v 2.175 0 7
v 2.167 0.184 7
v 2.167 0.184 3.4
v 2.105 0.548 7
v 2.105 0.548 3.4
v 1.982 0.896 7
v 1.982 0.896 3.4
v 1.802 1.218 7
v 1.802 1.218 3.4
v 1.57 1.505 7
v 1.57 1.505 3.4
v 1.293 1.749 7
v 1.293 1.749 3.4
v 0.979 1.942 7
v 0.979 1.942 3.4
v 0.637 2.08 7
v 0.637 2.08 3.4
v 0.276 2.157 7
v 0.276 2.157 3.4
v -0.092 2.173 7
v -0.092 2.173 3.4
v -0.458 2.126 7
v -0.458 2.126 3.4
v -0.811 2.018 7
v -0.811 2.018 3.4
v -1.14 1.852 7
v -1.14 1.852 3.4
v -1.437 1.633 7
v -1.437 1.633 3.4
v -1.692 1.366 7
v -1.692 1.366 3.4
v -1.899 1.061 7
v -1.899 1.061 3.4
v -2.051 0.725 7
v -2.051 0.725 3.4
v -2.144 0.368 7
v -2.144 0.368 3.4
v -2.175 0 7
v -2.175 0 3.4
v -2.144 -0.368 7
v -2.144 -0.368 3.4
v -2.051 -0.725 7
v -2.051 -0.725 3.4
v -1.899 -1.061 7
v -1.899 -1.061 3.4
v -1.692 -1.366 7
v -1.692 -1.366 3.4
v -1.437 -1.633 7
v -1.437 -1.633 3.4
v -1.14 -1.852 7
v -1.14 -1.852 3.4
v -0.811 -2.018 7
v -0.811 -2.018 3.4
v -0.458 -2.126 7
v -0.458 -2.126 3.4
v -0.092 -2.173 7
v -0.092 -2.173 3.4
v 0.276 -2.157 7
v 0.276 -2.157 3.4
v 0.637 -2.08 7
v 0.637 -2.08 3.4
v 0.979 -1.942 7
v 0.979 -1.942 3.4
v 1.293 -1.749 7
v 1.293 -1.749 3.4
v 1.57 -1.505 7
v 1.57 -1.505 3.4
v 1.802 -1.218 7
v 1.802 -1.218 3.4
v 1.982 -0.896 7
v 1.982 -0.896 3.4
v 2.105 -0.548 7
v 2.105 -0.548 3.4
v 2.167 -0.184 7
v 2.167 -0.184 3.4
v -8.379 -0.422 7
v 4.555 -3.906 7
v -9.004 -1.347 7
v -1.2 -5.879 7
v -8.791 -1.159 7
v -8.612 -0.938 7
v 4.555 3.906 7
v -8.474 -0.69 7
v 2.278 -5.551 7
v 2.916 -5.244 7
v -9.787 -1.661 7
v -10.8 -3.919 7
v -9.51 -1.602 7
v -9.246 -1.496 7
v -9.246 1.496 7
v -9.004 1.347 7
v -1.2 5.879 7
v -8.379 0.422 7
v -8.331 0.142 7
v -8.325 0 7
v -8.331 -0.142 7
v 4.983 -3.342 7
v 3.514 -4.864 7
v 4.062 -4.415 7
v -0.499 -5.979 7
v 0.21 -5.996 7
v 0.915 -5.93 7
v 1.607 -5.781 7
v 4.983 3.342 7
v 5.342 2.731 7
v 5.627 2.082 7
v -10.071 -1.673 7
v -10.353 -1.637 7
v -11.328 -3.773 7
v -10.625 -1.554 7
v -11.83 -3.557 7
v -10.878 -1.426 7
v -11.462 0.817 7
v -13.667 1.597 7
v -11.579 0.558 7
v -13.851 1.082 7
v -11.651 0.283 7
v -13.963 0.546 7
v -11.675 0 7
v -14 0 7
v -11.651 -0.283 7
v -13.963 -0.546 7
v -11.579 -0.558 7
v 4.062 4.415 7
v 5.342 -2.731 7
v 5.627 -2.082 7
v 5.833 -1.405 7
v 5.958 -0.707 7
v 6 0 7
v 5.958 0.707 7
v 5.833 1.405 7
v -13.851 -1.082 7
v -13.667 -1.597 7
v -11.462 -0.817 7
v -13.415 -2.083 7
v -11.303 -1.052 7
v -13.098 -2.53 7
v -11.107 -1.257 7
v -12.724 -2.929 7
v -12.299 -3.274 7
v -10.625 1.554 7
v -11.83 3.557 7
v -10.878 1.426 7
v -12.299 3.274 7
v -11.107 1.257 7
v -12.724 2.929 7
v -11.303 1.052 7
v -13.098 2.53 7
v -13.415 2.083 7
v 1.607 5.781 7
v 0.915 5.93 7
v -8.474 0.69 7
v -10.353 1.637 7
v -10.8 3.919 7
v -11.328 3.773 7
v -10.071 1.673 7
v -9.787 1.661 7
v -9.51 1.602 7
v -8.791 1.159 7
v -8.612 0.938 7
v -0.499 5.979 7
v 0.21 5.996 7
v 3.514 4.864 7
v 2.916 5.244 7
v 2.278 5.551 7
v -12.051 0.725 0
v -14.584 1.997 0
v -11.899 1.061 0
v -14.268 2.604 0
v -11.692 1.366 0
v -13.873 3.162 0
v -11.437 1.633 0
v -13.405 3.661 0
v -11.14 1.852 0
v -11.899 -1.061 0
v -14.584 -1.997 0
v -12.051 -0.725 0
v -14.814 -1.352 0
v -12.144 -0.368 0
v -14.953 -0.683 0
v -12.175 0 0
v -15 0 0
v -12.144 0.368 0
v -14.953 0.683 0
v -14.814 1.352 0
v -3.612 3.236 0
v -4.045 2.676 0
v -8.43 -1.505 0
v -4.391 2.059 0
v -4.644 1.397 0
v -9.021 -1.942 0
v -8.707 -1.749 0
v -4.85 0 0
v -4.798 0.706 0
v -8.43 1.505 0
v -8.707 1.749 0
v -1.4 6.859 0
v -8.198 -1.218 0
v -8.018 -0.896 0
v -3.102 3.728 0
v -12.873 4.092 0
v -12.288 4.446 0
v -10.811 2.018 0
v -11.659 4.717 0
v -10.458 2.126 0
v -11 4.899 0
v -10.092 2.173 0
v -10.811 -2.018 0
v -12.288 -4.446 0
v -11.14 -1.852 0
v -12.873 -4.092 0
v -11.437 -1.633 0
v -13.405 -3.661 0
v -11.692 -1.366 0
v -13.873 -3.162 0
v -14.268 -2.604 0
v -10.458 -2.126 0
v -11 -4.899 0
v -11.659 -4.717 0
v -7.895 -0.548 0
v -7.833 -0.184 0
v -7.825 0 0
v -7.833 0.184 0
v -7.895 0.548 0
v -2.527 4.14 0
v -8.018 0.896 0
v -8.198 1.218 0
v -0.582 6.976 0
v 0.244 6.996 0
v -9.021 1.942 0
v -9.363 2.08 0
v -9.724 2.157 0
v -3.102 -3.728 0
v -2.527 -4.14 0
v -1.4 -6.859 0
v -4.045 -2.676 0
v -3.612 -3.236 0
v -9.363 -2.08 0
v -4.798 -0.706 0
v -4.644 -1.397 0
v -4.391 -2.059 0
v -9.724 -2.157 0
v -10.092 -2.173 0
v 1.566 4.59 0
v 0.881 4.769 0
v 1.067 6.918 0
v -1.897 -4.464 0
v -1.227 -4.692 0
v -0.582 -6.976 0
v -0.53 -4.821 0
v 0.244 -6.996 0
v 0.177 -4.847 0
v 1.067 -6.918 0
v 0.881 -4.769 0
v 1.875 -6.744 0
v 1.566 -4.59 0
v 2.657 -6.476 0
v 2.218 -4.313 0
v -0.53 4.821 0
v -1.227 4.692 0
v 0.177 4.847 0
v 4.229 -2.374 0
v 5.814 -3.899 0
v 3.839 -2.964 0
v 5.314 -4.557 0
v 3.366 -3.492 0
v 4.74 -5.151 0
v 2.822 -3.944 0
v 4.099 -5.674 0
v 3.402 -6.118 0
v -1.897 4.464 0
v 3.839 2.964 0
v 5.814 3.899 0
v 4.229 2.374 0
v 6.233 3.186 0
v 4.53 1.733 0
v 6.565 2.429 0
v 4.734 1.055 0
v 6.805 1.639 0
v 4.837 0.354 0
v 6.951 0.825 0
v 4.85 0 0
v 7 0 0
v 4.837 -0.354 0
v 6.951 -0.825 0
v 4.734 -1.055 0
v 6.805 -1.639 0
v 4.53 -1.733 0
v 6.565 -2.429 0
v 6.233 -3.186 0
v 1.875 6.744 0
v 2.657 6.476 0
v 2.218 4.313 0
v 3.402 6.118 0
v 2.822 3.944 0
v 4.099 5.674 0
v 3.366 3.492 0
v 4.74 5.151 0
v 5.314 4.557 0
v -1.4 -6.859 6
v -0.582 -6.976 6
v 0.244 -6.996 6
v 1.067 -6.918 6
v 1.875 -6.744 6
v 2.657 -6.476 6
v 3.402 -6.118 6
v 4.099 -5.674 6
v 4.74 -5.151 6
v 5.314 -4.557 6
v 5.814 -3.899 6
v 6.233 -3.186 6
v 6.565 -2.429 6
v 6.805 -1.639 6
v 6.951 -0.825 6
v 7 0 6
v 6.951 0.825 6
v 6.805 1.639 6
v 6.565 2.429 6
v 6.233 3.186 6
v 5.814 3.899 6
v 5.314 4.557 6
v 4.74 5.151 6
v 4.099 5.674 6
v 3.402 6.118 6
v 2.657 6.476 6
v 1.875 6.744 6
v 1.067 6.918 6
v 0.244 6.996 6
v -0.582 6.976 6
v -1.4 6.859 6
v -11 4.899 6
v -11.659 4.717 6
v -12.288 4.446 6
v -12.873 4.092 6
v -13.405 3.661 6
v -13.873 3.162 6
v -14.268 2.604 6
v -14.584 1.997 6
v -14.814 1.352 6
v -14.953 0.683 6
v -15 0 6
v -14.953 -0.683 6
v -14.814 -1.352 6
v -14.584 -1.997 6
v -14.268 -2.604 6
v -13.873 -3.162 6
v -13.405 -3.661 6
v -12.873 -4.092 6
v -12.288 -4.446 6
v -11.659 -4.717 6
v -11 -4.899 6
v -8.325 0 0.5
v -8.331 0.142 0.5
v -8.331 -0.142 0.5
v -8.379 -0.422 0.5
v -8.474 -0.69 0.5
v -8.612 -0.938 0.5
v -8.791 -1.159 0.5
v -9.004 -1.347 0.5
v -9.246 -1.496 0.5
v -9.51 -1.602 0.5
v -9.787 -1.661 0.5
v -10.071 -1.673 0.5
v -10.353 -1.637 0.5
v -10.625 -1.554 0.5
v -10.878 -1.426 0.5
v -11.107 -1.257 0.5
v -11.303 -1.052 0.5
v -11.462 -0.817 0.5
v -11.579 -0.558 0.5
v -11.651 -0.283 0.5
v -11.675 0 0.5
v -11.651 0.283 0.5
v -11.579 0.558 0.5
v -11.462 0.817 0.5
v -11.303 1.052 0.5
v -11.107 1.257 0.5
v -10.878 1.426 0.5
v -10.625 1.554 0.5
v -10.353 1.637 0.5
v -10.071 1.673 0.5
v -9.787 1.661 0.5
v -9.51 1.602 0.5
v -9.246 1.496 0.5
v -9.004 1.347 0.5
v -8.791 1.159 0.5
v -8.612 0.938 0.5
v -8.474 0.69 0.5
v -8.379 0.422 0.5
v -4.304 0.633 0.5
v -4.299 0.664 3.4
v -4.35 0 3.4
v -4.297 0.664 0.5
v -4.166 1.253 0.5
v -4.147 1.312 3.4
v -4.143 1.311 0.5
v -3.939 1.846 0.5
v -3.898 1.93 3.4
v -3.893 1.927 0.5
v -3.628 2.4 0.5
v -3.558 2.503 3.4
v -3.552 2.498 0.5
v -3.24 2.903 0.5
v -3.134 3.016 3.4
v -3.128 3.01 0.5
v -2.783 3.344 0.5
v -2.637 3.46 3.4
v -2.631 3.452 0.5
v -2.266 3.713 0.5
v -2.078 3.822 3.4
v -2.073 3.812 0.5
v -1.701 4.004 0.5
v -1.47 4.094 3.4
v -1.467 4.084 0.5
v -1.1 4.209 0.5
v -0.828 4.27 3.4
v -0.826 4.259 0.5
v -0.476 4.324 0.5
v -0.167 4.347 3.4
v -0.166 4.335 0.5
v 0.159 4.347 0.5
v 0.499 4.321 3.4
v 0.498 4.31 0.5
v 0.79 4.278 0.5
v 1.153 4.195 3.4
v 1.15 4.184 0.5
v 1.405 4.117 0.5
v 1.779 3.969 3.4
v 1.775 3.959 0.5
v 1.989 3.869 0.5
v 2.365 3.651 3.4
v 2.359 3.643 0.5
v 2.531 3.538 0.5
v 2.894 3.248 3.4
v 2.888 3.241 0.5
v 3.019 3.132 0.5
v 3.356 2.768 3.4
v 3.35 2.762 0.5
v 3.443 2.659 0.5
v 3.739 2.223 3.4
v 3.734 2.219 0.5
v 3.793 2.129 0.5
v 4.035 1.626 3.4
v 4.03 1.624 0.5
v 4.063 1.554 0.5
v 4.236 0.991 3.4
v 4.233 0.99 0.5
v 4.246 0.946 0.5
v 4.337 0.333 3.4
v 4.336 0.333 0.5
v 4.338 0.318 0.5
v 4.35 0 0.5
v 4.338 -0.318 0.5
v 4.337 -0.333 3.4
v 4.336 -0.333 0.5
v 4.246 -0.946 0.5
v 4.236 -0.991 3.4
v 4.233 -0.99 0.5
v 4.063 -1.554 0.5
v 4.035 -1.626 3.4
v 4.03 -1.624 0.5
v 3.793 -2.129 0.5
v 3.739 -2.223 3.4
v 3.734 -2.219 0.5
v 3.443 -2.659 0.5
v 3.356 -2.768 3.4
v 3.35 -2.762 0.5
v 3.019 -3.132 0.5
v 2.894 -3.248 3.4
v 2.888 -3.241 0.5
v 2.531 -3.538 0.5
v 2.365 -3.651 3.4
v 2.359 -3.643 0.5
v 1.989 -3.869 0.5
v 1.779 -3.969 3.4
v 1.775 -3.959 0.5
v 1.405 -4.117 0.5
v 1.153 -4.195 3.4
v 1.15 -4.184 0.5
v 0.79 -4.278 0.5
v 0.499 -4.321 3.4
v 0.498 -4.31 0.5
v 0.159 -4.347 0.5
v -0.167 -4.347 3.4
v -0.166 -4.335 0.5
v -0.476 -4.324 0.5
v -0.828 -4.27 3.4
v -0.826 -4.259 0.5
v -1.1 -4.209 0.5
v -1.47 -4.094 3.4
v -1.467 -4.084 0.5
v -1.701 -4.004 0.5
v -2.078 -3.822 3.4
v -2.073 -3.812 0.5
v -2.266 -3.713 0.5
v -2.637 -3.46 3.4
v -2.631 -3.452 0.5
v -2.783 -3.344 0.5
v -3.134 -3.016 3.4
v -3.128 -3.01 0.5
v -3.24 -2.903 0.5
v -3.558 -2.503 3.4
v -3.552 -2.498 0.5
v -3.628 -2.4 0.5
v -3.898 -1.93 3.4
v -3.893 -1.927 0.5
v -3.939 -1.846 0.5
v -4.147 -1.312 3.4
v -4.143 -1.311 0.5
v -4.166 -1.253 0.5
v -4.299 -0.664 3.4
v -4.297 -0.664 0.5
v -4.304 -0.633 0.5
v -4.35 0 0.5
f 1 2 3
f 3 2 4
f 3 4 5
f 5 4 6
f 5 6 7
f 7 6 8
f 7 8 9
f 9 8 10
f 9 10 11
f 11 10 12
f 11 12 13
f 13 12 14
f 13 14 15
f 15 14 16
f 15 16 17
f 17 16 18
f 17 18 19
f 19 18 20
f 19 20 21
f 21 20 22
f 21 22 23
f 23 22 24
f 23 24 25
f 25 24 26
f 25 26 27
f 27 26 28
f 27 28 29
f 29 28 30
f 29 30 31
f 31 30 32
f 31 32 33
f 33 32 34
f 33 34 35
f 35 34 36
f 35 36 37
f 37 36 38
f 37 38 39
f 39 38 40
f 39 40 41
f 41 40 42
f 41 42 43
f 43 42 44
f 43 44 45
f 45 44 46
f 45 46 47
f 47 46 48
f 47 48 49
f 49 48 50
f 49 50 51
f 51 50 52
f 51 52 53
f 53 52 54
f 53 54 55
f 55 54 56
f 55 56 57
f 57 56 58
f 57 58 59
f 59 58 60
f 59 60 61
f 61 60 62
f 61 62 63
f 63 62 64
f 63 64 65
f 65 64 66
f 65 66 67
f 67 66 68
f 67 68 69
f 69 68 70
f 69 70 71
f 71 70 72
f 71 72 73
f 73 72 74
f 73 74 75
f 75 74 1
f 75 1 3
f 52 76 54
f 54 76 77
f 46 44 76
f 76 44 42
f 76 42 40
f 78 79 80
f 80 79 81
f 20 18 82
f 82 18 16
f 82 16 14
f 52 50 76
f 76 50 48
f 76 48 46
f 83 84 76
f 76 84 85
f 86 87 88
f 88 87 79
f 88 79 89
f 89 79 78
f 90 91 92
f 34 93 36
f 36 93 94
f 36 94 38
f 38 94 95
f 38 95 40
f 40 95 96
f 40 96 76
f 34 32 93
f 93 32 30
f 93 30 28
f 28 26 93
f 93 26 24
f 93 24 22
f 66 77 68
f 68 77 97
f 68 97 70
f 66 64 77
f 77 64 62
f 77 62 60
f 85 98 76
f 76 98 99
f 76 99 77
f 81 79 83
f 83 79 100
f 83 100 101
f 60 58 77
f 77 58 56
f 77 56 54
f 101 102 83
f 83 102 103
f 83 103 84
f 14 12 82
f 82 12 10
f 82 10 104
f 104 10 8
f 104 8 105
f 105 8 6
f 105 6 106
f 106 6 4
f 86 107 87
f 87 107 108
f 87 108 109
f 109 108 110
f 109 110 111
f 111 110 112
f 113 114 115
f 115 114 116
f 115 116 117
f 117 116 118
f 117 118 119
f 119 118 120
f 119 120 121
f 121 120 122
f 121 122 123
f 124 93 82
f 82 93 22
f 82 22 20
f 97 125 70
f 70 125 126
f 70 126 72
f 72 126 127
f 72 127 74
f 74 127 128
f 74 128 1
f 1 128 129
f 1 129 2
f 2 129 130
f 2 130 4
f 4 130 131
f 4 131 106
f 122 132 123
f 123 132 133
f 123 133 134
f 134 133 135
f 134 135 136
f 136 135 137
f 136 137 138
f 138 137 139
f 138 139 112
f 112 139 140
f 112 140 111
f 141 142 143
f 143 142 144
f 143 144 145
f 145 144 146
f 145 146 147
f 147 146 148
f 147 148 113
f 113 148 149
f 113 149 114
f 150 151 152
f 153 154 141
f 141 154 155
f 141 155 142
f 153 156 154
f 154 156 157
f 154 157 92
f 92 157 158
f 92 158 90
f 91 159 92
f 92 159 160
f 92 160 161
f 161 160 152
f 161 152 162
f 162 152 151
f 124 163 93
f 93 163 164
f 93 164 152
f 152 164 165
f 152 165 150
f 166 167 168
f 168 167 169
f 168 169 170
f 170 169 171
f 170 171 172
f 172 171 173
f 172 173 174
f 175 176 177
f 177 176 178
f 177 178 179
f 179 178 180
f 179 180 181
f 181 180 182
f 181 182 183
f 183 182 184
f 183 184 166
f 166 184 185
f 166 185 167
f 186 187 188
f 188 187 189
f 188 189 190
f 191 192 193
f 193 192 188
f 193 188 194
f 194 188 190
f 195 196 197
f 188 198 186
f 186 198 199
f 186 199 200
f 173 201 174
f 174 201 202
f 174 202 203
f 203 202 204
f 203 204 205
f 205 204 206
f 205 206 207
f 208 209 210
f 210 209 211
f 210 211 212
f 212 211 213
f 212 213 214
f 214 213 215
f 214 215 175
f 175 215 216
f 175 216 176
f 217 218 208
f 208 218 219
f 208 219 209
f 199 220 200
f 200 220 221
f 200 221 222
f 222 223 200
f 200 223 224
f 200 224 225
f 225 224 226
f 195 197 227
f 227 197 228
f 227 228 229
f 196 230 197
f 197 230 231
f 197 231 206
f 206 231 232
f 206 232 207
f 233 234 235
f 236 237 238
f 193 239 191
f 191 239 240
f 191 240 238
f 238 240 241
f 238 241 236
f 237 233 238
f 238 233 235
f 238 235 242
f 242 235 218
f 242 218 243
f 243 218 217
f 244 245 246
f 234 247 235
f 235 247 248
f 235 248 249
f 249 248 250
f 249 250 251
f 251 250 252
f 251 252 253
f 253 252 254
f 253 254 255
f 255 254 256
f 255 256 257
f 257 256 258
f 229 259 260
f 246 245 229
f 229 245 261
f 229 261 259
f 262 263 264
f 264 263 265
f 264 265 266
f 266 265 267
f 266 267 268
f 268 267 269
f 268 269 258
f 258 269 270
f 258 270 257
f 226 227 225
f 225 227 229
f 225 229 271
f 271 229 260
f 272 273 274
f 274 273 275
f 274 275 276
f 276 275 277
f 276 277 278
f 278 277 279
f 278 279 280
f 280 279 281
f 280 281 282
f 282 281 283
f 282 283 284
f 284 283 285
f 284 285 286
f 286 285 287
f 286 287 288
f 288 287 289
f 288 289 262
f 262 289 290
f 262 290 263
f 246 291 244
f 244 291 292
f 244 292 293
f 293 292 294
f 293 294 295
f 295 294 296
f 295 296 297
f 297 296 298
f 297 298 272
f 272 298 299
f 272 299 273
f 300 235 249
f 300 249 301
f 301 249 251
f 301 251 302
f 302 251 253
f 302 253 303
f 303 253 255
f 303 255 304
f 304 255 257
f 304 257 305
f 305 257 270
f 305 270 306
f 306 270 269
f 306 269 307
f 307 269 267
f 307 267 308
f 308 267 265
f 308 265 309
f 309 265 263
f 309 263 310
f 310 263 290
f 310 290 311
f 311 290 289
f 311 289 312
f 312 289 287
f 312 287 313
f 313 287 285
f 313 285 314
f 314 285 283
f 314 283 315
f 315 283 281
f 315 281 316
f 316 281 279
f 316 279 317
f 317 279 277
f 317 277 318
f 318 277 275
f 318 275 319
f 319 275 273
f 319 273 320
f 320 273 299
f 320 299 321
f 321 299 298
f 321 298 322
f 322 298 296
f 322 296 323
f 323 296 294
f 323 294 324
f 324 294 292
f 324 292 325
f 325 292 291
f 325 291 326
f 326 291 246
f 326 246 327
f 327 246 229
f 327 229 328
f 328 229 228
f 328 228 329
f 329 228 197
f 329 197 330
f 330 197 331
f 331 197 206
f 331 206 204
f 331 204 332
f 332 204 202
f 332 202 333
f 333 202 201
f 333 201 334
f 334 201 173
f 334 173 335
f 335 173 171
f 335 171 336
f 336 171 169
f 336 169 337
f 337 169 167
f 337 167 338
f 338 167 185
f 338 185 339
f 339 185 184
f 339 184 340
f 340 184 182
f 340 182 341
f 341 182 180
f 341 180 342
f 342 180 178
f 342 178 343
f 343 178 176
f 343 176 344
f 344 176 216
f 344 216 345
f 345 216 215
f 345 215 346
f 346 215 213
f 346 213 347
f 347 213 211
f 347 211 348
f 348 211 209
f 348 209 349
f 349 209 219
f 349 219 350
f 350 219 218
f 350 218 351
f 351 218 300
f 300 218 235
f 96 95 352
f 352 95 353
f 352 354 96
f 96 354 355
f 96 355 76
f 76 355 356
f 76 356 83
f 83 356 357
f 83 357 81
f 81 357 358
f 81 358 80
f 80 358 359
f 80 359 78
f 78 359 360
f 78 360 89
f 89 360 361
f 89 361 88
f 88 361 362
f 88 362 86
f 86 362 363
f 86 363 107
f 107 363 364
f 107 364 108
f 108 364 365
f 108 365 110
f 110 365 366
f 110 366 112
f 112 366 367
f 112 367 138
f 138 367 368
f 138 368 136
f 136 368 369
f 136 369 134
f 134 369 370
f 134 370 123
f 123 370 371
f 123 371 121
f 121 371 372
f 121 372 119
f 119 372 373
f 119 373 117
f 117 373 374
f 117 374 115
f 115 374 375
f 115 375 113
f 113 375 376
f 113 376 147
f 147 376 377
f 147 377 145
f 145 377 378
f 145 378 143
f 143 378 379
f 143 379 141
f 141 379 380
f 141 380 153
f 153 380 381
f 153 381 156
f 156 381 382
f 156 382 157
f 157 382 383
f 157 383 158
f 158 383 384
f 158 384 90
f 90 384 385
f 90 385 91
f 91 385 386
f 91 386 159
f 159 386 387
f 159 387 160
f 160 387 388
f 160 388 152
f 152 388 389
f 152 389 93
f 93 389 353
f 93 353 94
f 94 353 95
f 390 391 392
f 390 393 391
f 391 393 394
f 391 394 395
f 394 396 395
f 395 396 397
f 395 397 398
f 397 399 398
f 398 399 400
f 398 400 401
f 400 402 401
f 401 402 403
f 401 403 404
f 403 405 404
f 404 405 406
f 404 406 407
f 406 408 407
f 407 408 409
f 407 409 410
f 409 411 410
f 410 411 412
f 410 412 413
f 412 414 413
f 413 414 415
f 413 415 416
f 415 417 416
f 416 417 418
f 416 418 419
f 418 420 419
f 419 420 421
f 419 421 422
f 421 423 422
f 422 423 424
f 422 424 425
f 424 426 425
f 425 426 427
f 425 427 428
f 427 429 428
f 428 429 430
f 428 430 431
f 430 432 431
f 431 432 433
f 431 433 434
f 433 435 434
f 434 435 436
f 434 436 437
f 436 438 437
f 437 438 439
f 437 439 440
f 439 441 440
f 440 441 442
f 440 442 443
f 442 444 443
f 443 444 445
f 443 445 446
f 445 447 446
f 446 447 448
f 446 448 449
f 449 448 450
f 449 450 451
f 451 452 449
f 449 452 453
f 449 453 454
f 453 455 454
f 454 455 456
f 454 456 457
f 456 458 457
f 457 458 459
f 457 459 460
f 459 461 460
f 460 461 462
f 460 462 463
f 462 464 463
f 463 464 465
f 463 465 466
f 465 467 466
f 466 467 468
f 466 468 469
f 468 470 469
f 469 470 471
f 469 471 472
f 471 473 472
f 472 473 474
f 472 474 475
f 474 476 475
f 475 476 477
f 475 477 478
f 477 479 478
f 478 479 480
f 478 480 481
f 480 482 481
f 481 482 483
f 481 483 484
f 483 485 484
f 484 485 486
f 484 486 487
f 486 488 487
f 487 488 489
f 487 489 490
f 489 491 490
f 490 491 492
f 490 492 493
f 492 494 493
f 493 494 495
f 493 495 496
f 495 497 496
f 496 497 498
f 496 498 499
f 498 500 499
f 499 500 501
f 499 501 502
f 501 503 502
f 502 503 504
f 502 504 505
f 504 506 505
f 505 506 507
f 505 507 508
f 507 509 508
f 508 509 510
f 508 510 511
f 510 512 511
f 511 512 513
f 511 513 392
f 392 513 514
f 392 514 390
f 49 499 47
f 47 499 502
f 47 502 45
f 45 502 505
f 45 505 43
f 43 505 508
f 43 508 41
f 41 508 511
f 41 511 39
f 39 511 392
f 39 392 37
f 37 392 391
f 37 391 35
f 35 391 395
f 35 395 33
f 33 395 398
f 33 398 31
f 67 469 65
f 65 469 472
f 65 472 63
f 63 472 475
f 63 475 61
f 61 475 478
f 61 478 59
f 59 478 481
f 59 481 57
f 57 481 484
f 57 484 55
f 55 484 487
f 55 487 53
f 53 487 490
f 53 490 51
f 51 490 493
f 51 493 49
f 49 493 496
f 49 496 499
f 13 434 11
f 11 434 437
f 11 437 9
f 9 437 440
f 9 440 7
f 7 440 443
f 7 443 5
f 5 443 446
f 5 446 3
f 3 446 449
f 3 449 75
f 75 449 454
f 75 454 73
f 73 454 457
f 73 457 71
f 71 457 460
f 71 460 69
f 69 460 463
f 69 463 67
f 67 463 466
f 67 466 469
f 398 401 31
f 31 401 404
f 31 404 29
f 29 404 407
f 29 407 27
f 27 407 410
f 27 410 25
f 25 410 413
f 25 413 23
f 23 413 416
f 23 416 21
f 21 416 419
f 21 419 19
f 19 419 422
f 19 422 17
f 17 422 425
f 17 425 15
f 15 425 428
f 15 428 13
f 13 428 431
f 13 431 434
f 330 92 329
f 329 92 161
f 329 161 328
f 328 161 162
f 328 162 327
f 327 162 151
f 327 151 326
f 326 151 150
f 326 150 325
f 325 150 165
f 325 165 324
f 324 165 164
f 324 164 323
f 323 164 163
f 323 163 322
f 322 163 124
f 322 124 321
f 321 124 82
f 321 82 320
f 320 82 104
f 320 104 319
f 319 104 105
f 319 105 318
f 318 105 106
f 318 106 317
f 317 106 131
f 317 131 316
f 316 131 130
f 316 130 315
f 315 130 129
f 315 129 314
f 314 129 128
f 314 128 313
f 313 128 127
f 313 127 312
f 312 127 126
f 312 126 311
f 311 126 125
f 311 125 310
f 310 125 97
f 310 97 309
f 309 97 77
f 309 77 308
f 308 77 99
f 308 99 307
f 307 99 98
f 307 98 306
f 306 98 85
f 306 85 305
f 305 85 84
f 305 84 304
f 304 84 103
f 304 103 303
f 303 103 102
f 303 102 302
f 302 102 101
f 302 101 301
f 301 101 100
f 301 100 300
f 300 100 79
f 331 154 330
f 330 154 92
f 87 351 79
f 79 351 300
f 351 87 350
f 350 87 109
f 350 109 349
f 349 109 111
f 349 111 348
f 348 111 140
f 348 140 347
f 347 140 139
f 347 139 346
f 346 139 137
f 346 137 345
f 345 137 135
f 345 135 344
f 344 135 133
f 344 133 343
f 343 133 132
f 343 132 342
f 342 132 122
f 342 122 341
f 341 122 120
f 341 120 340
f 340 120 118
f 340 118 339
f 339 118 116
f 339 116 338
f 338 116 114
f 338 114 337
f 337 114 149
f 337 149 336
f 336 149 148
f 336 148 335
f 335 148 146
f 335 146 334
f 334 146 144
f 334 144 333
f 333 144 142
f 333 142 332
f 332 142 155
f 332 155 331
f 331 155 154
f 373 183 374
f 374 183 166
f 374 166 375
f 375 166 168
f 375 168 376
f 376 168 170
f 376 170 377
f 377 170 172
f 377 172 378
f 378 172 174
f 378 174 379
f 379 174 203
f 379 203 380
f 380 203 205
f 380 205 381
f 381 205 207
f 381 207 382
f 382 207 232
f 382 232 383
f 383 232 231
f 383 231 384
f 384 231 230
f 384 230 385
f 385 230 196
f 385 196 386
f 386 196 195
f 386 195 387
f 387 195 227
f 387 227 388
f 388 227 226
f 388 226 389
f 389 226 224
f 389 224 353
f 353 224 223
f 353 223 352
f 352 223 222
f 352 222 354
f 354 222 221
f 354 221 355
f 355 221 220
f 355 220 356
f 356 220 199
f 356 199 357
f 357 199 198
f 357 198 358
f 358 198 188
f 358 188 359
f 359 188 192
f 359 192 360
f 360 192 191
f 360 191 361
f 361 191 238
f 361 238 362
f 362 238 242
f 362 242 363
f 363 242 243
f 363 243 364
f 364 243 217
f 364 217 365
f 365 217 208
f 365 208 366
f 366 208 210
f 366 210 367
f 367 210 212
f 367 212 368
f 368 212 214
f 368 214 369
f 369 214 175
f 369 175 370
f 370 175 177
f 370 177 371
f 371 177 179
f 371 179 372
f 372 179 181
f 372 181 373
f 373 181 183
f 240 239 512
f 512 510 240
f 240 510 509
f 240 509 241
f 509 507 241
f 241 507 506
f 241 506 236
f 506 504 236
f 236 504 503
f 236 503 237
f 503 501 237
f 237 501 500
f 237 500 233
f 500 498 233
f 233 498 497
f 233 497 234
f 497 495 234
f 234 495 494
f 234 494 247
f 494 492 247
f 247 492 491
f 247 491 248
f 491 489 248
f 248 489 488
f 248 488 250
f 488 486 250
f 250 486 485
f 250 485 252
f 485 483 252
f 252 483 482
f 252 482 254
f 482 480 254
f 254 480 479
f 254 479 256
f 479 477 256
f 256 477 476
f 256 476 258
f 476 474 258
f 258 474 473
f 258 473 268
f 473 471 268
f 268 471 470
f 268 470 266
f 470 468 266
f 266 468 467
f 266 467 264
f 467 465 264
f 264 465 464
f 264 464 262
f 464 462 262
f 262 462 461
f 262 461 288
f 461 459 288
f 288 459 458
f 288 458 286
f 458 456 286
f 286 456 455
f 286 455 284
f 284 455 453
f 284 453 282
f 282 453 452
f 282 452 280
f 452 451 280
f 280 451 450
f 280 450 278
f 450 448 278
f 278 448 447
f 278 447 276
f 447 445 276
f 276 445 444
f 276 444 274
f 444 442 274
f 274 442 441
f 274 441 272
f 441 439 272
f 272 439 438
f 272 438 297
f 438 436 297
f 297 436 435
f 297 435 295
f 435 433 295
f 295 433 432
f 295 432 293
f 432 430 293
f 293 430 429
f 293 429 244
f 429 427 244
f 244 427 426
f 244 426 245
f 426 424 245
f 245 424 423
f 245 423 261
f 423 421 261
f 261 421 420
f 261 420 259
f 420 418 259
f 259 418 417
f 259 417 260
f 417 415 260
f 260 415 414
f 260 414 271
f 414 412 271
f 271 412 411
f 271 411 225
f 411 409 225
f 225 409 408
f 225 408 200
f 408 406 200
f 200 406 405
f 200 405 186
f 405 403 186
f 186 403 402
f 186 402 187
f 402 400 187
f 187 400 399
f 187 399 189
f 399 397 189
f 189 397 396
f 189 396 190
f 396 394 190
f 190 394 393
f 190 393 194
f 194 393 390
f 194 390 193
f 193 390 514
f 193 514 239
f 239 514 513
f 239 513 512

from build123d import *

# Parameters (mm, degrees)
SKETCH1_R           = 2.175
SKETCH1_R_2         = 1.675
BOSS_EXTRUDE1_DEPTH = 7
SKETCH2_R           = 4.35
CUT_EXTRUDE1_DEPTH  = 3.4
CHAMFER1_SIZE       = 1
CHAMFER2_SIZE       = 0.5


with BuildPart() as part:
    # Sketch1 → Boss-Extrude1 (new body)
    with BuildSketch(Plane.XY):
        with BuildLine():
            Line((-1.4, 6.85857128), (-11, 4.898979486))
            ThreePointArc((-11, 4.898979486), (-15, 0), (-11, -4.898979486))
            Line((-11, -4.898979486), (-1.4, -6.85857128))
            ThreePointArc((-1.4, -6.85857128), (7, 0), (-1.4, 6.85857128))
        make_face()
        Circle(SKETCH1_R, mode=Mode.SUBTRACT)
        with Locations((-10, 0)):
            Circle(SKETCH1_R_2, mode=Mode.SUBTRACT)
    extrude(amount=BOSS_EXTRUDE1_DEPTH)

    # Sketch2 → Cut-Extrude1 (cut)
    with BuildSketch(Plane(origin=(0, 0, 0), x_dir=(-1, 0, 0), z_dir=(0, 0, -1))):
        Circle(SKETCH2_R)
    extrude(amount=-CUT_EXTRUDE1_DEPTH, mode=Mode.SUBTRACT)

    # Chamfer1
    chamfer1_edges = [part.edges().sort_by_distance(p)[0] for p in [
        (-15, 0, 7),
        (-6.2, -5.878775383, 7),
        (7, 0, 7),
        (-6.2, 5.878775383, 7),
    ]]
    chamfer(chamfer1_edges, length=CHAMFER1_SIZE)

    # Chamfer2
    chamfer2_edges = [part.edges().sort_by_distance(p)[0] for p in [
        (-11.675, 0, 0),
        (4.35, 0, 0),
    ]]
    chamfer(chamfer2_edges, length=CHAMFER2_SIZE)


solid = part.part
